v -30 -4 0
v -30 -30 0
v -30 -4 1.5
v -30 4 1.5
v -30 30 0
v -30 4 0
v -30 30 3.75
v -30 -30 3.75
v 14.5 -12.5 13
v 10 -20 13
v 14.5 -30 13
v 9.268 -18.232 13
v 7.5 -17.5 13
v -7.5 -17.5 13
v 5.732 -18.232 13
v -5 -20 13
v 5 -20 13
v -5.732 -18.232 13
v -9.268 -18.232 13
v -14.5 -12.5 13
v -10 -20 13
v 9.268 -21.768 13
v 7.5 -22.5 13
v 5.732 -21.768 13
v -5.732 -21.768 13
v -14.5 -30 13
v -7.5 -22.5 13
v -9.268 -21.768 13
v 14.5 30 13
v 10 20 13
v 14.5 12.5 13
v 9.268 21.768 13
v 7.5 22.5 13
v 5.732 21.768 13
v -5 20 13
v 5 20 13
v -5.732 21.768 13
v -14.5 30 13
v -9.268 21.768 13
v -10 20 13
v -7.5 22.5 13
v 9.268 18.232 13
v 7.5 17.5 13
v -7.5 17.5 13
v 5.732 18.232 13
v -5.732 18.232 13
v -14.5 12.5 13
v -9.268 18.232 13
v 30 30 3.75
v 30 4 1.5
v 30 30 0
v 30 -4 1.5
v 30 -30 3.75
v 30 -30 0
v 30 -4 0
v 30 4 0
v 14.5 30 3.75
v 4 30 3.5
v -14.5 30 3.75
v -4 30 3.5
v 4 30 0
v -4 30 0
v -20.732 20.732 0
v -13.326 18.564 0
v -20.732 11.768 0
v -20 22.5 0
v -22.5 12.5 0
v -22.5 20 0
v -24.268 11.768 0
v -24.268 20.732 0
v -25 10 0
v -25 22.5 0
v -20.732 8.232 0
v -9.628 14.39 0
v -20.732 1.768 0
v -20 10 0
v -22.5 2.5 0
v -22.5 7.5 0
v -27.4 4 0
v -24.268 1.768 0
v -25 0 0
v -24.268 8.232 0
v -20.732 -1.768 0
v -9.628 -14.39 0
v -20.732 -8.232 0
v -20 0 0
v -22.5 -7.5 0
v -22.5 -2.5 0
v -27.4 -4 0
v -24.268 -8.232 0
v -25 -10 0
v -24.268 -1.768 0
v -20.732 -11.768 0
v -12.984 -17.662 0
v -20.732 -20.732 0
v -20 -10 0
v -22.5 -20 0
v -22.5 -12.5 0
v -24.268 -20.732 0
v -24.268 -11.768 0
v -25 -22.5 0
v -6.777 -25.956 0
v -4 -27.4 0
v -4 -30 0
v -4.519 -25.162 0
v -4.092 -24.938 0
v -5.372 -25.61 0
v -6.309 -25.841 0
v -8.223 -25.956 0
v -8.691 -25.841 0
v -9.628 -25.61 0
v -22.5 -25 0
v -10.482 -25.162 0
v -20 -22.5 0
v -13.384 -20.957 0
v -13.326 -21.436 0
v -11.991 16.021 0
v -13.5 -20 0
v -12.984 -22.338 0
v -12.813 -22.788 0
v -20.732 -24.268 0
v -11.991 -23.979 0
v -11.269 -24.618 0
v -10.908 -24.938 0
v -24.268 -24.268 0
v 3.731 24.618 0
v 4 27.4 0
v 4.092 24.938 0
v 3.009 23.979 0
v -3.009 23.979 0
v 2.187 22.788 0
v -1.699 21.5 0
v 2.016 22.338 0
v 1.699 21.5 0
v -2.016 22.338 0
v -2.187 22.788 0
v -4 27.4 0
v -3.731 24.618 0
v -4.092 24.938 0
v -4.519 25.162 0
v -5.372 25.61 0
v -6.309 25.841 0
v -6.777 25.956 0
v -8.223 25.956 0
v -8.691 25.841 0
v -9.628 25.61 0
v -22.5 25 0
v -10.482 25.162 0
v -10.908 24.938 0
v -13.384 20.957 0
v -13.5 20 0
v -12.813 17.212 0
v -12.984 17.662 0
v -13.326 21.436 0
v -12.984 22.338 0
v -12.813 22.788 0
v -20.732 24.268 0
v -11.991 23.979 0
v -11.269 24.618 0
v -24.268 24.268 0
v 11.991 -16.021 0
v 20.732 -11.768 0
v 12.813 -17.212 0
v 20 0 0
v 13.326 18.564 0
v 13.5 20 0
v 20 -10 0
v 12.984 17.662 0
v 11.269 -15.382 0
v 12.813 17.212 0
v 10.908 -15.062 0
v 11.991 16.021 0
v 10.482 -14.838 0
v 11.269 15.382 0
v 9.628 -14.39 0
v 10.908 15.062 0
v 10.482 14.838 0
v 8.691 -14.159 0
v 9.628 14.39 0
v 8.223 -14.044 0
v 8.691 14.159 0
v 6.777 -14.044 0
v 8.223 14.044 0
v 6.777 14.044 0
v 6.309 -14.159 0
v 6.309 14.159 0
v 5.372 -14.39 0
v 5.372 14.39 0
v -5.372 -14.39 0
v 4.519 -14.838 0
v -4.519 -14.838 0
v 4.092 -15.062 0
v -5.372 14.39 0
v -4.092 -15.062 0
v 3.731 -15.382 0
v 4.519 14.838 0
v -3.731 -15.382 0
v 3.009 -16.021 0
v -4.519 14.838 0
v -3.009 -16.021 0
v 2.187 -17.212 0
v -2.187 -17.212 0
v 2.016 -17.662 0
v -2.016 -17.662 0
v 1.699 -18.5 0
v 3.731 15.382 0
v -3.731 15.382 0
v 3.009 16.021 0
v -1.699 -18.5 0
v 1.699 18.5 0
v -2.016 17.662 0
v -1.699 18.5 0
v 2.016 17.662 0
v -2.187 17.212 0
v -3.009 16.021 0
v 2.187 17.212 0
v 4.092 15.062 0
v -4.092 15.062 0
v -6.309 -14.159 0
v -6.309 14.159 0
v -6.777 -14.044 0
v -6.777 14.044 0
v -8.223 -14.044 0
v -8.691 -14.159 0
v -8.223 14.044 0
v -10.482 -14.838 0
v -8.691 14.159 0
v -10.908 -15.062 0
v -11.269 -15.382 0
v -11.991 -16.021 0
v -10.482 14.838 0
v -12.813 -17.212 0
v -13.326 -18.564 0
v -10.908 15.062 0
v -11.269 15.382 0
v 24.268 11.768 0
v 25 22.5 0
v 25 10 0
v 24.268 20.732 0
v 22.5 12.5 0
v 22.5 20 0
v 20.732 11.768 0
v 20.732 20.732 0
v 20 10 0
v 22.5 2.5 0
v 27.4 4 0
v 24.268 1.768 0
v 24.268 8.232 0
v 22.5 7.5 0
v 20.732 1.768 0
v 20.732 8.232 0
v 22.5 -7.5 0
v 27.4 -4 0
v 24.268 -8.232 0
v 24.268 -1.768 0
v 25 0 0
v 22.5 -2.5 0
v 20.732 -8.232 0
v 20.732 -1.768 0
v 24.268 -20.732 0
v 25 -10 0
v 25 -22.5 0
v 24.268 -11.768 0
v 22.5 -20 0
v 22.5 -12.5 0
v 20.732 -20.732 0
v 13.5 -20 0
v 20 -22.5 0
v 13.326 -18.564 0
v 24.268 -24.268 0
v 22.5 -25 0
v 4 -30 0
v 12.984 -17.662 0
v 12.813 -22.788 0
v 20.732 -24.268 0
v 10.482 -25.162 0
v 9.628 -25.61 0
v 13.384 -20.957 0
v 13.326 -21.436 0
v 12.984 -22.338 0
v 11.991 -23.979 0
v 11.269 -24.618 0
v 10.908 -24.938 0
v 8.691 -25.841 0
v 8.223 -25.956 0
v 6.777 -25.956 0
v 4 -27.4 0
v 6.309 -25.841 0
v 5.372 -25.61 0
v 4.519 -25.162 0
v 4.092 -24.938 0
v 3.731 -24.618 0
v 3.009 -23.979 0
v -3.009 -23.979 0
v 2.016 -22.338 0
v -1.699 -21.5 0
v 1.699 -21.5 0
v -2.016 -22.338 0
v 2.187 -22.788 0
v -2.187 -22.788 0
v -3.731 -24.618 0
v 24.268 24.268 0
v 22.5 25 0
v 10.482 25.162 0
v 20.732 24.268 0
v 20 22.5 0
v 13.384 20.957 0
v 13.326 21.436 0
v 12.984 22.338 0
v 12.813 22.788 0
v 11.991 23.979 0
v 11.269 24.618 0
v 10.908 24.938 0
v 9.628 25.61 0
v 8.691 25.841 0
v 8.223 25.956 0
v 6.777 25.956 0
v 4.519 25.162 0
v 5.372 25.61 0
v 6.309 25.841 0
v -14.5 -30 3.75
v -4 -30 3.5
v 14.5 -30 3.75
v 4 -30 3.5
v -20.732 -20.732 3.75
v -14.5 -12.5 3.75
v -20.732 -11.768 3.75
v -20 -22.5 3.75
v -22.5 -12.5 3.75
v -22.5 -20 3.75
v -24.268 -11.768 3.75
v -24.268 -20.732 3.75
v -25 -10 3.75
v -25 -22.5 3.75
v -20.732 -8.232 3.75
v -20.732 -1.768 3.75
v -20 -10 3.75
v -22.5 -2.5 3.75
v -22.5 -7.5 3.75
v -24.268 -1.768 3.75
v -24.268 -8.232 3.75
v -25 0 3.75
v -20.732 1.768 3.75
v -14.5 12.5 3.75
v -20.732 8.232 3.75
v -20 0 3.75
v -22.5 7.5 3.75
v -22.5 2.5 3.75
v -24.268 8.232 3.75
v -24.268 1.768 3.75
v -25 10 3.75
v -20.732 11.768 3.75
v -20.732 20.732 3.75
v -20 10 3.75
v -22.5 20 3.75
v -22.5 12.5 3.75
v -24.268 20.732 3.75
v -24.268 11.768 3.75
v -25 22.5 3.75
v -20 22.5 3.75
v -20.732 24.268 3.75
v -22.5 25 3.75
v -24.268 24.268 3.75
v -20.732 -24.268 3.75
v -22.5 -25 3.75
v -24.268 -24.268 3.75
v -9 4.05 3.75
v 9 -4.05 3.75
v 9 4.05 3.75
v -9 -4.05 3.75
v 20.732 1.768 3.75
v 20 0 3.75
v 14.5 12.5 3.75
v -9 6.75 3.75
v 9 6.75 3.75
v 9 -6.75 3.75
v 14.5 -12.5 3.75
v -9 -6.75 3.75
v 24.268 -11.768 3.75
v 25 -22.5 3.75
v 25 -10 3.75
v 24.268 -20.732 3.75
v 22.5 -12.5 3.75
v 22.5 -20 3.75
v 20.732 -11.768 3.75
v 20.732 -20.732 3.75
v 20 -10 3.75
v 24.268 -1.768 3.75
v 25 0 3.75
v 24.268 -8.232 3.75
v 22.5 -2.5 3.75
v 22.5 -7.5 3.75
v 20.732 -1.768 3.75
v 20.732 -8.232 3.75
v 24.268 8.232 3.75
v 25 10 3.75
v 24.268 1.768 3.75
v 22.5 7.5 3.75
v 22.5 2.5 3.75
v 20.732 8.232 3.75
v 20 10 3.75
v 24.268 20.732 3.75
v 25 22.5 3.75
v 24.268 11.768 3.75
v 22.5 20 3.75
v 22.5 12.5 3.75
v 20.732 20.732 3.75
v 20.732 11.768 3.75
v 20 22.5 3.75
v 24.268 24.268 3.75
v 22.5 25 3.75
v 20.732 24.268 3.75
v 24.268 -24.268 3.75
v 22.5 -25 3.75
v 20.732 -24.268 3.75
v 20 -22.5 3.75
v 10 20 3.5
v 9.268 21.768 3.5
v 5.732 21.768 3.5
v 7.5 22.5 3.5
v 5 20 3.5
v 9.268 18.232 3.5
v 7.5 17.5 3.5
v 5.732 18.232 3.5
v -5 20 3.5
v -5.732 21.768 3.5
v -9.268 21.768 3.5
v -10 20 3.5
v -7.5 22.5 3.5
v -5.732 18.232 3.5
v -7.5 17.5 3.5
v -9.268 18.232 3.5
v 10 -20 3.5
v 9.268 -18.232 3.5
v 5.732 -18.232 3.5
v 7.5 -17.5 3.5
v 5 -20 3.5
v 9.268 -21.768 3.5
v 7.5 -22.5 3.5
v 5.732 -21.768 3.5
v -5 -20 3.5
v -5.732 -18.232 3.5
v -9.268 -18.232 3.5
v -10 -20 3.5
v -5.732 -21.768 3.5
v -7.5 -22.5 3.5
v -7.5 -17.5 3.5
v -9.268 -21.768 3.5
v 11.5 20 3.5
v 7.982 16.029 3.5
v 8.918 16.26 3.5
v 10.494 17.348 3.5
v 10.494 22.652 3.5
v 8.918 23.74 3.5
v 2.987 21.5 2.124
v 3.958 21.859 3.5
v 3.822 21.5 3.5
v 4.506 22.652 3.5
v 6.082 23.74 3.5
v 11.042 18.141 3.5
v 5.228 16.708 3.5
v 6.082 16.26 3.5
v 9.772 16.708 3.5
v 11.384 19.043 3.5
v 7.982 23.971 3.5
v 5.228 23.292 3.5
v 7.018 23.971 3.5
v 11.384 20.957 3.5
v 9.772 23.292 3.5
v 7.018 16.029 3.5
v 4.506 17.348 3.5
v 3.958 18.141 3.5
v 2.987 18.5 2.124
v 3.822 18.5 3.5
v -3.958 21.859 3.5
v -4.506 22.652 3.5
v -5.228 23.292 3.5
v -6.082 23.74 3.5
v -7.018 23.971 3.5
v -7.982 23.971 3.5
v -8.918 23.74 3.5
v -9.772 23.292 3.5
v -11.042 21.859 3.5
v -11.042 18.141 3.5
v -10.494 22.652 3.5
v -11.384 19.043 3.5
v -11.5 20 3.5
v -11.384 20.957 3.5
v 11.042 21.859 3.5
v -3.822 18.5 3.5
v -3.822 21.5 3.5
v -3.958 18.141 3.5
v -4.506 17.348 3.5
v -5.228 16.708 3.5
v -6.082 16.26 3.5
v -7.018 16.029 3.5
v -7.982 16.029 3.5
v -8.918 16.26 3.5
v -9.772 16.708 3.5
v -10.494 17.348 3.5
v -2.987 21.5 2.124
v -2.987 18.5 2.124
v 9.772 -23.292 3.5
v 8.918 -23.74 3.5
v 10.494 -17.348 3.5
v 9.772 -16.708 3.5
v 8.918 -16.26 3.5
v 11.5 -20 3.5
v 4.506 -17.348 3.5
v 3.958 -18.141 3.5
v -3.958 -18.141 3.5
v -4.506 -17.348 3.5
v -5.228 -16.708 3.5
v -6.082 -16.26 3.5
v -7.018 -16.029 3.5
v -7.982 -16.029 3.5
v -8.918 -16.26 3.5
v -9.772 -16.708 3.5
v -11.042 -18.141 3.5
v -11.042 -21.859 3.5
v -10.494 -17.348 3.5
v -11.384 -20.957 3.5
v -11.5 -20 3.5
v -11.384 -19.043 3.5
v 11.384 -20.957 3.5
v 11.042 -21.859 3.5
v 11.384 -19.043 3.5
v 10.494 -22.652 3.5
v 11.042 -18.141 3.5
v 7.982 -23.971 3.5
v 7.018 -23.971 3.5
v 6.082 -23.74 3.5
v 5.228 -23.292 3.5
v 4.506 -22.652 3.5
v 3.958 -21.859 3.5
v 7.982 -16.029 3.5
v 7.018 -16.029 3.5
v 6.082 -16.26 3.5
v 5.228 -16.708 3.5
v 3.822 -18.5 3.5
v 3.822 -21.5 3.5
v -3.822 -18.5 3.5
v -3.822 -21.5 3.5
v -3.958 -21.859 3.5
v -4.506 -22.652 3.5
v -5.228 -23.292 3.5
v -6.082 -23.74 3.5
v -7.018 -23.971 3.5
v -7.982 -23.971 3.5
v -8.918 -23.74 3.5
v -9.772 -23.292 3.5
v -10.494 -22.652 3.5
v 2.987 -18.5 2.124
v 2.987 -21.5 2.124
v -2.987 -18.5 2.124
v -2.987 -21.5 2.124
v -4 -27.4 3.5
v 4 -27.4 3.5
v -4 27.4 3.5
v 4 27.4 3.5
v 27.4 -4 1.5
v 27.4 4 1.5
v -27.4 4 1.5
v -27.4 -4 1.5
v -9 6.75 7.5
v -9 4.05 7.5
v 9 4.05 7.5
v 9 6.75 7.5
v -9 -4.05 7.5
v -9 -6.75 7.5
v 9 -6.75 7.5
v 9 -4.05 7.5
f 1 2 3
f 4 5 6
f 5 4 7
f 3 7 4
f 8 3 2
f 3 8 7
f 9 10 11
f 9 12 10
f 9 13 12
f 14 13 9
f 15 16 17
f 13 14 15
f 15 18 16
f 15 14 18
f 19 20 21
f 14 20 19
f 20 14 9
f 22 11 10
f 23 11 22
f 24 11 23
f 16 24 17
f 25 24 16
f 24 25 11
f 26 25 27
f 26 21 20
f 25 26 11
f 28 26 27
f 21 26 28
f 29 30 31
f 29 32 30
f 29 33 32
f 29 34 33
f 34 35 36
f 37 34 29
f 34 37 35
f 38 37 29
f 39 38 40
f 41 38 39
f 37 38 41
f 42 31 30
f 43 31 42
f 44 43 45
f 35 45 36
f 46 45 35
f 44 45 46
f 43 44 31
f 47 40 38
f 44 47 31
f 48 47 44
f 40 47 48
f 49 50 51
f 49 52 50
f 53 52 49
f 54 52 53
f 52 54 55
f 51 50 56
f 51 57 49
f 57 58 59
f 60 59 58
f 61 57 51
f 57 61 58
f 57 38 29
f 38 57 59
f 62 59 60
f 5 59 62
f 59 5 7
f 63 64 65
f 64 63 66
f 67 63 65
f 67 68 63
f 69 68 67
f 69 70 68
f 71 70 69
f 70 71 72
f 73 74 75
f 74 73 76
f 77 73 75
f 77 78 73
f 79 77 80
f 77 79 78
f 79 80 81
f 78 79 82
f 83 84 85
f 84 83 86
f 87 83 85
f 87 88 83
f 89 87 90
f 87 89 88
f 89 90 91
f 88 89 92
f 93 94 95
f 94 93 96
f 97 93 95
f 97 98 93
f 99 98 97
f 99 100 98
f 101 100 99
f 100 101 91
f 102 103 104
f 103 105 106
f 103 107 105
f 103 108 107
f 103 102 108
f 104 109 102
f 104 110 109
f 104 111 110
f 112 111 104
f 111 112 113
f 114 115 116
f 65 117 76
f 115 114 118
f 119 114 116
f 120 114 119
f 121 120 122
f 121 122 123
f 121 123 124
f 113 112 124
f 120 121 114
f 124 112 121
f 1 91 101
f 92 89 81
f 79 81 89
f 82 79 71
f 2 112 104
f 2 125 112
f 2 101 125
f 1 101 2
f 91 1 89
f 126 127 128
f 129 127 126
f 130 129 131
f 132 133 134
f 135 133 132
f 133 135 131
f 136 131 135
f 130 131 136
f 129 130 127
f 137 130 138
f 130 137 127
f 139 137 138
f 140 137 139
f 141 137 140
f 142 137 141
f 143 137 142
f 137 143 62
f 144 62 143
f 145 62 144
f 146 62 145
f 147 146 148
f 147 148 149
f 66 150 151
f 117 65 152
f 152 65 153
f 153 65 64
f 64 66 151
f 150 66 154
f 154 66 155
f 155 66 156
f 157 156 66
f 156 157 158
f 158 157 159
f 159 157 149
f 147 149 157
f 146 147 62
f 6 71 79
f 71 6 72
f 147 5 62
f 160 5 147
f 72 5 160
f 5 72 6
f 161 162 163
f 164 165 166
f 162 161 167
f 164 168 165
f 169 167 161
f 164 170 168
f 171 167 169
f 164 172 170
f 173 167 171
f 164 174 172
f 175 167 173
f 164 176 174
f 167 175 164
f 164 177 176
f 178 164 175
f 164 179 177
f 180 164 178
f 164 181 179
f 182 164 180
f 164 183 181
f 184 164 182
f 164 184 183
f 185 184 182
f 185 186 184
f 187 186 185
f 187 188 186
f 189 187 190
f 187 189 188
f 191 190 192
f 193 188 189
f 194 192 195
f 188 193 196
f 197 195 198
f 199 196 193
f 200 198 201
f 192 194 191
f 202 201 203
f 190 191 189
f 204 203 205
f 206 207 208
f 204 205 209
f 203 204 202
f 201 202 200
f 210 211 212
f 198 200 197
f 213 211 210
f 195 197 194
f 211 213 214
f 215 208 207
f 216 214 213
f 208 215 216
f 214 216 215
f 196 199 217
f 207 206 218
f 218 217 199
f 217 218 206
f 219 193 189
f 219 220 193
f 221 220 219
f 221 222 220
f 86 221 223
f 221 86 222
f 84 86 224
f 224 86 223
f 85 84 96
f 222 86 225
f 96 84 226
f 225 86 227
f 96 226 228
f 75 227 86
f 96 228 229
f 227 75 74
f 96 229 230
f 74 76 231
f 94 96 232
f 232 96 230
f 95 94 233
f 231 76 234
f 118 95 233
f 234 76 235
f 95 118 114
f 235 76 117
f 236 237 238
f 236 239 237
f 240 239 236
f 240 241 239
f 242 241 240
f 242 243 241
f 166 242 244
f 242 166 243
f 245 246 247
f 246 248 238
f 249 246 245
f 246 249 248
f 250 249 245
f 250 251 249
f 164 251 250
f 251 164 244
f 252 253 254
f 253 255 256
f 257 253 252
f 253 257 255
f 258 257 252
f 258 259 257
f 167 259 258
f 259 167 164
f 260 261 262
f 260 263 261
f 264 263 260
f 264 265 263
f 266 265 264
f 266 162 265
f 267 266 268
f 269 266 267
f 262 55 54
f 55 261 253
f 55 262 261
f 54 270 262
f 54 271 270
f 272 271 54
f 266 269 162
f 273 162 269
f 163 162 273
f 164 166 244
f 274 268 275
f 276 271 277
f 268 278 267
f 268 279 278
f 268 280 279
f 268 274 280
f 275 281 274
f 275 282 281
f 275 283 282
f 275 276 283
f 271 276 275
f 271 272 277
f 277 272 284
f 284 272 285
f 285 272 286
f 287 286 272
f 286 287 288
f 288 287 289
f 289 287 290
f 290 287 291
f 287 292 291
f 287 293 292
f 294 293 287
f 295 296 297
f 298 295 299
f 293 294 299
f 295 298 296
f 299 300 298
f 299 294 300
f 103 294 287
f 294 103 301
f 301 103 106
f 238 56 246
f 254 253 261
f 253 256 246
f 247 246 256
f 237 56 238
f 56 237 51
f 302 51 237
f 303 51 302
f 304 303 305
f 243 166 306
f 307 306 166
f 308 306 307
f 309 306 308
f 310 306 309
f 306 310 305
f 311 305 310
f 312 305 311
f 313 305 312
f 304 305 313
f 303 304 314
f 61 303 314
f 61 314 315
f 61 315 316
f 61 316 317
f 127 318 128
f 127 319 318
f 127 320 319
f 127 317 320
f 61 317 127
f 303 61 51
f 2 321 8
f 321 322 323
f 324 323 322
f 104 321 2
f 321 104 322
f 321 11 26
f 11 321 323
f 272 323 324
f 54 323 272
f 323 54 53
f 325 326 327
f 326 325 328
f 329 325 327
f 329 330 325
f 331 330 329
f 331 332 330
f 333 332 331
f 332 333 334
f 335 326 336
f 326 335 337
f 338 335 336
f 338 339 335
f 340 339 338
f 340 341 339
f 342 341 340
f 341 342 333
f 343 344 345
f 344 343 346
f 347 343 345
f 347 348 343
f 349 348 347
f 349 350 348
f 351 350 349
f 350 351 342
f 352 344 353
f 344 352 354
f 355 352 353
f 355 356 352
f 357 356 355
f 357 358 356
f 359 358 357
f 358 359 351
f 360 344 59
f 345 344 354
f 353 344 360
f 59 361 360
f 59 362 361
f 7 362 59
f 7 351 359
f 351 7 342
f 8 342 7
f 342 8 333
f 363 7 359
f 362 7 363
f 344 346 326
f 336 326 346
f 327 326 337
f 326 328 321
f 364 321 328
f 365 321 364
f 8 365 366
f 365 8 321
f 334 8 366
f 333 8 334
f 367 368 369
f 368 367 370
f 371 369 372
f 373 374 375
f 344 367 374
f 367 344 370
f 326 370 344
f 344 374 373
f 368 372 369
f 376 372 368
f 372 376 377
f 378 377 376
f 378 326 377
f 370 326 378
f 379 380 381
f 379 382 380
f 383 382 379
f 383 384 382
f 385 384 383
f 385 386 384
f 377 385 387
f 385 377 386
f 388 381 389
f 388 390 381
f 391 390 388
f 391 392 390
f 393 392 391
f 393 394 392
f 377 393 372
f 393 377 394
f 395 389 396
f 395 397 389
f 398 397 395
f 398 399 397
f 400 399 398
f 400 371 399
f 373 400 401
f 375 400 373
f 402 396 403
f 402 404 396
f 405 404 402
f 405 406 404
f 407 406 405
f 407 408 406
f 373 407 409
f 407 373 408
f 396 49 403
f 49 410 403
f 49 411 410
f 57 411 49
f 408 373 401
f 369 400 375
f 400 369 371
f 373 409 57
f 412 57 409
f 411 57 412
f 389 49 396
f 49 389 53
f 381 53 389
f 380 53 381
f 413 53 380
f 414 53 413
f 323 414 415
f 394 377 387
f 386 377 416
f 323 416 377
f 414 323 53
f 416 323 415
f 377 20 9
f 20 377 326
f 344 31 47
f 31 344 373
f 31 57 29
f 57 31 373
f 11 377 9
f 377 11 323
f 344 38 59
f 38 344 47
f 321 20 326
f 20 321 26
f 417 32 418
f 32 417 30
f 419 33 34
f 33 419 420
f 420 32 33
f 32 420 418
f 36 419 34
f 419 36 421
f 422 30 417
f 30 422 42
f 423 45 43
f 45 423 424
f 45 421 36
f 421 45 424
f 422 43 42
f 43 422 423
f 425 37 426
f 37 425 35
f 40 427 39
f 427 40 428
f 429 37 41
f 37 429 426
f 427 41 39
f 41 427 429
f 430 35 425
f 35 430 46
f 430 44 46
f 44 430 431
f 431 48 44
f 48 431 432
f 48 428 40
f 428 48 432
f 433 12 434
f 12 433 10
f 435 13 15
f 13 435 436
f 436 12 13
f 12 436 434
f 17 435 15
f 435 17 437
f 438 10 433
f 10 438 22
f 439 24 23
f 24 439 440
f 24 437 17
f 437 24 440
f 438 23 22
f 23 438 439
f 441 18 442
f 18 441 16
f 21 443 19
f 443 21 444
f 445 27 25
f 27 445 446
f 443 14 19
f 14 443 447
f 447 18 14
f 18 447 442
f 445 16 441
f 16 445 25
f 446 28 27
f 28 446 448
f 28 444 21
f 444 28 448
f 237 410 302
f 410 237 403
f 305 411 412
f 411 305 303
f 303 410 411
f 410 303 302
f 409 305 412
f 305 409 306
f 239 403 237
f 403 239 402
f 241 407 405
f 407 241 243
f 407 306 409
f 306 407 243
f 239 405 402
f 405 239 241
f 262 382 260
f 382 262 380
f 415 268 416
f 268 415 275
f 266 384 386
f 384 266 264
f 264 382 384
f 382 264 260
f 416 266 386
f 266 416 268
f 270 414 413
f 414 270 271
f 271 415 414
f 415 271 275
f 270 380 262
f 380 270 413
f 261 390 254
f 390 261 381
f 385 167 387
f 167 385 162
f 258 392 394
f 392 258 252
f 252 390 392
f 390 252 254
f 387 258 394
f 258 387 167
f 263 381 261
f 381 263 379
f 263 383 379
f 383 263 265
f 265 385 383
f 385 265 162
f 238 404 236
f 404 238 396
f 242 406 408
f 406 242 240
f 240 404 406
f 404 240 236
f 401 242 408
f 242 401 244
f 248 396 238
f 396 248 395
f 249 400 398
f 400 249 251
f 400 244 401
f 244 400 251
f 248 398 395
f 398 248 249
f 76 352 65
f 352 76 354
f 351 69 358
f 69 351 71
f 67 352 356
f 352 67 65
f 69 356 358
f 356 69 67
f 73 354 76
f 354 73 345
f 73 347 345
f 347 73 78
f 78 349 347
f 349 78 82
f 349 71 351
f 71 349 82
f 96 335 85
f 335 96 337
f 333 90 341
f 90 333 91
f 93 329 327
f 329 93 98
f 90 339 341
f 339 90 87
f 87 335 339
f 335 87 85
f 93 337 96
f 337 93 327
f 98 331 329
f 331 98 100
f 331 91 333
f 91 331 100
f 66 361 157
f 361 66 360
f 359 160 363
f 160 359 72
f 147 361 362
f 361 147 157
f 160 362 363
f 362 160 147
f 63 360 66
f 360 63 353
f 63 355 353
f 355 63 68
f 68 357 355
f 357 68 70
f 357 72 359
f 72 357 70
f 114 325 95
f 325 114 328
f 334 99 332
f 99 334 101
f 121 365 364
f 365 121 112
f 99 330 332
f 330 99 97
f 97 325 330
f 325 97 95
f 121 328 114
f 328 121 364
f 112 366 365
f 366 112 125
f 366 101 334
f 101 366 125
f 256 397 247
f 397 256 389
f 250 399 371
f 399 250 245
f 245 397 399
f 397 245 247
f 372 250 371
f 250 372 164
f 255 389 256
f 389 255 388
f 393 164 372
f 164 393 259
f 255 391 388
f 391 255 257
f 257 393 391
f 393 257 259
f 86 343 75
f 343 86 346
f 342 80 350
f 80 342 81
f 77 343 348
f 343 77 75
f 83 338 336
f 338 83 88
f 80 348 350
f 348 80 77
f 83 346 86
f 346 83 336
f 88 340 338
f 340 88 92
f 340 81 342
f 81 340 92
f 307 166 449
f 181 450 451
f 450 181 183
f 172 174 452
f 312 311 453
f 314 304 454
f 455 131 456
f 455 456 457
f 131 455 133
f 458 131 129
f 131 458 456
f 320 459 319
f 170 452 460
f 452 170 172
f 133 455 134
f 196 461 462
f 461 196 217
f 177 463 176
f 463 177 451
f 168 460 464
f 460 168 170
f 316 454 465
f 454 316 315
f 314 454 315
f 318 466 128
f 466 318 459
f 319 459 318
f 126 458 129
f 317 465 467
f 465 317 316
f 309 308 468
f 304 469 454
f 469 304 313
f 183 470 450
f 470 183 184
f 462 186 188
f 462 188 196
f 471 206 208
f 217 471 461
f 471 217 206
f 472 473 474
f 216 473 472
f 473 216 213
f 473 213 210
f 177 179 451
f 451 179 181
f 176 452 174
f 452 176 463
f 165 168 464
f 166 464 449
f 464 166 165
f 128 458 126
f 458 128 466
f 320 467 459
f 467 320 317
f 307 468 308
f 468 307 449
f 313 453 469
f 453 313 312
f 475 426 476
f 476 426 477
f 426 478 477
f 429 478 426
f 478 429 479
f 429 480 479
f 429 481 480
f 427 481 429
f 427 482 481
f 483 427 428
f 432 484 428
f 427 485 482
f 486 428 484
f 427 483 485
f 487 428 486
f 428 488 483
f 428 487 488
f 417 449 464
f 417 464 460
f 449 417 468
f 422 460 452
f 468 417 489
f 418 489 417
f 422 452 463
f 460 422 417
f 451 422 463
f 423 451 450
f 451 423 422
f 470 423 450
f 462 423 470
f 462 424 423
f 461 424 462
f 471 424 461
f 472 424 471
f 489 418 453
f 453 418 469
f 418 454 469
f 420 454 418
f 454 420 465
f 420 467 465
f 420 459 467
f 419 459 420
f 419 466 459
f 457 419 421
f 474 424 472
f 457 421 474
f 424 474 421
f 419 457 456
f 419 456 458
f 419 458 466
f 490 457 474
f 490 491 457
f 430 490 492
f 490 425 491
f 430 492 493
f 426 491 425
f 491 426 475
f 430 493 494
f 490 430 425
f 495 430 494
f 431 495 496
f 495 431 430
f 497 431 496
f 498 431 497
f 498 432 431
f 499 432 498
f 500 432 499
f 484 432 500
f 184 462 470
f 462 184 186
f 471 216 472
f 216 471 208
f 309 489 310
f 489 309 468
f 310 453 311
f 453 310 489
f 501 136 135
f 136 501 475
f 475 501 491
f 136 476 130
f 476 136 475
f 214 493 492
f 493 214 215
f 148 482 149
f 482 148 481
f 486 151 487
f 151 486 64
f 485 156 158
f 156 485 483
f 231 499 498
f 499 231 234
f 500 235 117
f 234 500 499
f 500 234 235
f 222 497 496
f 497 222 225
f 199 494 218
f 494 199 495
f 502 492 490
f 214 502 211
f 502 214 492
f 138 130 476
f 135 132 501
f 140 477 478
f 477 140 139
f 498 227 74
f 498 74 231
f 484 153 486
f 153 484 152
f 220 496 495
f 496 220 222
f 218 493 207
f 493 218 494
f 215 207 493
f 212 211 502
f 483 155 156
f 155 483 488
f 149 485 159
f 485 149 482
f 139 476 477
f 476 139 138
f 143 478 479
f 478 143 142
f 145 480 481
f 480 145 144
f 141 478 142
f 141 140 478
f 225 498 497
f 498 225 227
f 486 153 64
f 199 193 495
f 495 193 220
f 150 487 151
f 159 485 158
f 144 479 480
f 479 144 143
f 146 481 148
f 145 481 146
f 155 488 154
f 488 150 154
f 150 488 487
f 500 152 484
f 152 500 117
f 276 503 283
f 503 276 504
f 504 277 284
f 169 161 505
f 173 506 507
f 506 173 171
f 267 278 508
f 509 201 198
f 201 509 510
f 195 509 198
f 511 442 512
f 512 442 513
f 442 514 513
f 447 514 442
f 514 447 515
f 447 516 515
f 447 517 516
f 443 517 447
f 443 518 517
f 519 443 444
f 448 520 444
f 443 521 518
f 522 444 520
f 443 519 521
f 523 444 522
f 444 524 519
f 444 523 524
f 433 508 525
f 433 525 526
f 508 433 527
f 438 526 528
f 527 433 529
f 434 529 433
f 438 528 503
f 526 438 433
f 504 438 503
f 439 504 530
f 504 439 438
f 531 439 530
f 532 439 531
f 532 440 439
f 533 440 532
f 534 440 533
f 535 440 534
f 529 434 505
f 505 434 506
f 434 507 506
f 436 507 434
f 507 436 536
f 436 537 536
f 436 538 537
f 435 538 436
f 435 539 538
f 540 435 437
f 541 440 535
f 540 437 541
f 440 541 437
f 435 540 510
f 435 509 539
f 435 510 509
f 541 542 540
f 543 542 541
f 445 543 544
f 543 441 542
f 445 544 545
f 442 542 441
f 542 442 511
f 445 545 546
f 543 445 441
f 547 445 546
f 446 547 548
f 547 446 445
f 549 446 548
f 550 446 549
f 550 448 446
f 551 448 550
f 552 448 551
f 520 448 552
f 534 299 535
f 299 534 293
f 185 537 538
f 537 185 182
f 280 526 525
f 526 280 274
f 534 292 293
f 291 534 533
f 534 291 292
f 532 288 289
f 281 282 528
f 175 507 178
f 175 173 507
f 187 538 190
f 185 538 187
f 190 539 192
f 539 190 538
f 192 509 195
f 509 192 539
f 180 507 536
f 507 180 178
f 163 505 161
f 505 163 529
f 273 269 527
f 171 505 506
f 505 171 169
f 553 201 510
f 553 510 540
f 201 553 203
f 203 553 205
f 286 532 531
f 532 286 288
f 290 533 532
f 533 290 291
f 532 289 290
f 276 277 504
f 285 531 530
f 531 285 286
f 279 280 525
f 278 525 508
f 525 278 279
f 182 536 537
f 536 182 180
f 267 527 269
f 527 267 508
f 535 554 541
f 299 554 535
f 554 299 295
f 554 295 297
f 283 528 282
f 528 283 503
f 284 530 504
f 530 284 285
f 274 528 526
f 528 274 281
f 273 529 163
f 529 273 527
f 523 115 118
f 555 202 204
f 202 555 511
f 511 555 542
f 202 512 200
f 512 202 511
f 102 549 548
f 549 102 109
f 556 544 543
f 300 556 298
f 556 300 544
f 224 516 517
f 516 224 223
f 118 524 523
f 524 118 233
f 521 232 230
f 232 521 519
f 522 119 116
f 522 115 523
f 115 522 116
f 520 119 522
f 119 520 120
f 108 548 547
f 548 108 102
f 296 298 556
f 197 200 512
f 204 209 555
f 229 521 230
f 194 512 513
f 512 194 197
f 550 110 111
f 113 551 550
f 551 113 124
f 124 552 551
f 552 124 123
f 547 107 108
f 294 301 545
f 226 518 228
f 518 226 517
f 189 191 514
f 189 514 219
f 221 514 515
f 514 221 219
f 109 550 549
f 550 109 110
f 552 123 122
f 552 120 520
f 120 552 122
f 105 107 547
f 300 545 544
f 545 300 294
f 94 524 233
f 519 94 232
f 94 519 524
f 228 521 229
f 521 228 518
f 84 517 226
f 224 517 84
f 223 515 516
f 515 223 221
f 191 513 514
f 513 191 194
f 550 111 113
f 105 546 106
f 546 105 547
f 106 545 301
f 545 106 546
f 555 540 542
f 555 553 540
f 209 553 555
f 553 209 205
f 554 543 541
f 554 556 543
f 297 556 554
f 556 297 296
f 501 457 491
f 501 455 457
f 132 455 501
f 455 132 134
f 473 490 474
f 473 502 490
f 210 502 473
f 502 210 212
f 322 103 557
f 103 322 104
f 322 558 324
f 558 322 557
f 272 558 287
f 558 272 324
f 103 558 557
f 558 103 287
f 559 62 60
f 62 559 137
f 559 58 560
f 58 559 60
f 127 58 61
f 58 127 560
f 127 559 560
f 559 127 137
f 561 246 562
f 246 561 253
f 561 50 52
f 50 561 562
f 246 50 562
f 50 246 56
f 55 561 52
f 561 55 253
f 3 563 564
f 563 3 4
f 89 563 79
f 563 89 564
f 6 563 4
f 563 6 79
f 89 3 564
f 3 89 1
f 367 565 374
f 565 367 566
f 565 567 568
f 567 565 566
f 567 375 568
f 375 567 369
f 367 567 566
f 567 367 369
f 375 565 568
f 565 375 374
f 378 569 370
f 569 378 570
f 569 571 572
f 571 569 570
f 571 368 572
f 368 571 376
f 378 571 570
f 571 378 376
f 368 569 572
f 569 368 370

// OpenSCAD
//block shape
x=60;
y=60;
z=13;

// track channel
f=x+10;
g=25;
h=9.5;
// block top
e=20;
r=y+10;
t=16.5;

// spacing of screw holes
cx=15;
cy=40;
dx=20;
dy=45;


difference()
{
    translate([0,0,z]/2) cube ([x,y,z],center=true);
    translate([0,0,z+4]/2) cube([f,g,h],center=true);
    translate([49,0,z+11]/2) cube ([e,r,t],center=true);
        translate([-49,0,z+11]/2) cube ([e,r,t],center=true);
//main bolt holes
  translate([cx,cy,0]/2) cylinder(d=5, h=50,  center=true);
  translate([-cx,cy,0]/2) cylinder(d=5, h=50,  center=true);
    translate([cx,-cy,0]/2) cylinder(d=5, h=50,  center=true);
    translate([-cx,-cy,0]/2) cylinder(d=5, h=50,  center=true);
 

 //  original 5 holes
    translate([dy,dy,0]/2) cylinder(d=5, h=50,  center=true);
    translate([dy,-dy,0]/2) cylinder(d=5, h=50,  center=true);
  translate([dy,-dx,0]/2) cylinder(d=5, h=50,  center=true);
     translate([dy,dx,0]/2) cylinder(d=5, h=50,  center=true);
  translate([-dy,dx,0]/2) cylinder(d=5, h=50,  center=true);  
  translate([-dy,-dx,0]/2) cylinder(d=5, h=50,  center=true);  
  translate([-dy,dy,0]/2) cylinder(d=5, h=50,  center=true);
    translate([-dy,-dy,0]/2) cylinder(d=5, h=50,  center=true);  
      translate([dy*.5,0,-8]) cylinder(d=5, h=60, center=true);
        translate([-dy*.5,0,-8]) cylinder(d=5, h=60, center=true);
   
    
 translate([cx,cy,0]/2)  cylinder(d1=16, d2=8, h=7,  center=true);
 translate([-cx,cy,0]/2) cylinder(d1=16, d2=8, h=7, center=true);
    translate([cx,-cy,0]/2) cylinder(d1=16, d2=8, h=7,  center=true);
    translate([-cx,-cy,0]/2) cylinder(d1=16, d2=8, h=7,  center=true);    
// zip tie knotches    
    translate([0,-cy/2,11.5-10]) cube([18,3,4],center=true);
    translate([0,cy/2,11.5-10]) cube([18,3,4],center=true);
// removal knotches
       translate([0,-(6.8+51)/2,11.5-10]) cube([8,3,4],center=true);
   translate([0,(6.8+51)/2,11.5-10]) cube([8,3,4],center=true);
   translate([(6.8+51)/2,0,11.5-11]) cube([3,8,2],center=true);
   translate([-(6.8+51)/2,0,11.5-11]) cube([3,8,2],center=true);
}
   
  translate([0,(6.8+4)/2,z-8]) cube([18,2.7,5],center=true);
translate([0,-(6.8+4)/2,z-8]) cube([18,2.7,5],center=true);
